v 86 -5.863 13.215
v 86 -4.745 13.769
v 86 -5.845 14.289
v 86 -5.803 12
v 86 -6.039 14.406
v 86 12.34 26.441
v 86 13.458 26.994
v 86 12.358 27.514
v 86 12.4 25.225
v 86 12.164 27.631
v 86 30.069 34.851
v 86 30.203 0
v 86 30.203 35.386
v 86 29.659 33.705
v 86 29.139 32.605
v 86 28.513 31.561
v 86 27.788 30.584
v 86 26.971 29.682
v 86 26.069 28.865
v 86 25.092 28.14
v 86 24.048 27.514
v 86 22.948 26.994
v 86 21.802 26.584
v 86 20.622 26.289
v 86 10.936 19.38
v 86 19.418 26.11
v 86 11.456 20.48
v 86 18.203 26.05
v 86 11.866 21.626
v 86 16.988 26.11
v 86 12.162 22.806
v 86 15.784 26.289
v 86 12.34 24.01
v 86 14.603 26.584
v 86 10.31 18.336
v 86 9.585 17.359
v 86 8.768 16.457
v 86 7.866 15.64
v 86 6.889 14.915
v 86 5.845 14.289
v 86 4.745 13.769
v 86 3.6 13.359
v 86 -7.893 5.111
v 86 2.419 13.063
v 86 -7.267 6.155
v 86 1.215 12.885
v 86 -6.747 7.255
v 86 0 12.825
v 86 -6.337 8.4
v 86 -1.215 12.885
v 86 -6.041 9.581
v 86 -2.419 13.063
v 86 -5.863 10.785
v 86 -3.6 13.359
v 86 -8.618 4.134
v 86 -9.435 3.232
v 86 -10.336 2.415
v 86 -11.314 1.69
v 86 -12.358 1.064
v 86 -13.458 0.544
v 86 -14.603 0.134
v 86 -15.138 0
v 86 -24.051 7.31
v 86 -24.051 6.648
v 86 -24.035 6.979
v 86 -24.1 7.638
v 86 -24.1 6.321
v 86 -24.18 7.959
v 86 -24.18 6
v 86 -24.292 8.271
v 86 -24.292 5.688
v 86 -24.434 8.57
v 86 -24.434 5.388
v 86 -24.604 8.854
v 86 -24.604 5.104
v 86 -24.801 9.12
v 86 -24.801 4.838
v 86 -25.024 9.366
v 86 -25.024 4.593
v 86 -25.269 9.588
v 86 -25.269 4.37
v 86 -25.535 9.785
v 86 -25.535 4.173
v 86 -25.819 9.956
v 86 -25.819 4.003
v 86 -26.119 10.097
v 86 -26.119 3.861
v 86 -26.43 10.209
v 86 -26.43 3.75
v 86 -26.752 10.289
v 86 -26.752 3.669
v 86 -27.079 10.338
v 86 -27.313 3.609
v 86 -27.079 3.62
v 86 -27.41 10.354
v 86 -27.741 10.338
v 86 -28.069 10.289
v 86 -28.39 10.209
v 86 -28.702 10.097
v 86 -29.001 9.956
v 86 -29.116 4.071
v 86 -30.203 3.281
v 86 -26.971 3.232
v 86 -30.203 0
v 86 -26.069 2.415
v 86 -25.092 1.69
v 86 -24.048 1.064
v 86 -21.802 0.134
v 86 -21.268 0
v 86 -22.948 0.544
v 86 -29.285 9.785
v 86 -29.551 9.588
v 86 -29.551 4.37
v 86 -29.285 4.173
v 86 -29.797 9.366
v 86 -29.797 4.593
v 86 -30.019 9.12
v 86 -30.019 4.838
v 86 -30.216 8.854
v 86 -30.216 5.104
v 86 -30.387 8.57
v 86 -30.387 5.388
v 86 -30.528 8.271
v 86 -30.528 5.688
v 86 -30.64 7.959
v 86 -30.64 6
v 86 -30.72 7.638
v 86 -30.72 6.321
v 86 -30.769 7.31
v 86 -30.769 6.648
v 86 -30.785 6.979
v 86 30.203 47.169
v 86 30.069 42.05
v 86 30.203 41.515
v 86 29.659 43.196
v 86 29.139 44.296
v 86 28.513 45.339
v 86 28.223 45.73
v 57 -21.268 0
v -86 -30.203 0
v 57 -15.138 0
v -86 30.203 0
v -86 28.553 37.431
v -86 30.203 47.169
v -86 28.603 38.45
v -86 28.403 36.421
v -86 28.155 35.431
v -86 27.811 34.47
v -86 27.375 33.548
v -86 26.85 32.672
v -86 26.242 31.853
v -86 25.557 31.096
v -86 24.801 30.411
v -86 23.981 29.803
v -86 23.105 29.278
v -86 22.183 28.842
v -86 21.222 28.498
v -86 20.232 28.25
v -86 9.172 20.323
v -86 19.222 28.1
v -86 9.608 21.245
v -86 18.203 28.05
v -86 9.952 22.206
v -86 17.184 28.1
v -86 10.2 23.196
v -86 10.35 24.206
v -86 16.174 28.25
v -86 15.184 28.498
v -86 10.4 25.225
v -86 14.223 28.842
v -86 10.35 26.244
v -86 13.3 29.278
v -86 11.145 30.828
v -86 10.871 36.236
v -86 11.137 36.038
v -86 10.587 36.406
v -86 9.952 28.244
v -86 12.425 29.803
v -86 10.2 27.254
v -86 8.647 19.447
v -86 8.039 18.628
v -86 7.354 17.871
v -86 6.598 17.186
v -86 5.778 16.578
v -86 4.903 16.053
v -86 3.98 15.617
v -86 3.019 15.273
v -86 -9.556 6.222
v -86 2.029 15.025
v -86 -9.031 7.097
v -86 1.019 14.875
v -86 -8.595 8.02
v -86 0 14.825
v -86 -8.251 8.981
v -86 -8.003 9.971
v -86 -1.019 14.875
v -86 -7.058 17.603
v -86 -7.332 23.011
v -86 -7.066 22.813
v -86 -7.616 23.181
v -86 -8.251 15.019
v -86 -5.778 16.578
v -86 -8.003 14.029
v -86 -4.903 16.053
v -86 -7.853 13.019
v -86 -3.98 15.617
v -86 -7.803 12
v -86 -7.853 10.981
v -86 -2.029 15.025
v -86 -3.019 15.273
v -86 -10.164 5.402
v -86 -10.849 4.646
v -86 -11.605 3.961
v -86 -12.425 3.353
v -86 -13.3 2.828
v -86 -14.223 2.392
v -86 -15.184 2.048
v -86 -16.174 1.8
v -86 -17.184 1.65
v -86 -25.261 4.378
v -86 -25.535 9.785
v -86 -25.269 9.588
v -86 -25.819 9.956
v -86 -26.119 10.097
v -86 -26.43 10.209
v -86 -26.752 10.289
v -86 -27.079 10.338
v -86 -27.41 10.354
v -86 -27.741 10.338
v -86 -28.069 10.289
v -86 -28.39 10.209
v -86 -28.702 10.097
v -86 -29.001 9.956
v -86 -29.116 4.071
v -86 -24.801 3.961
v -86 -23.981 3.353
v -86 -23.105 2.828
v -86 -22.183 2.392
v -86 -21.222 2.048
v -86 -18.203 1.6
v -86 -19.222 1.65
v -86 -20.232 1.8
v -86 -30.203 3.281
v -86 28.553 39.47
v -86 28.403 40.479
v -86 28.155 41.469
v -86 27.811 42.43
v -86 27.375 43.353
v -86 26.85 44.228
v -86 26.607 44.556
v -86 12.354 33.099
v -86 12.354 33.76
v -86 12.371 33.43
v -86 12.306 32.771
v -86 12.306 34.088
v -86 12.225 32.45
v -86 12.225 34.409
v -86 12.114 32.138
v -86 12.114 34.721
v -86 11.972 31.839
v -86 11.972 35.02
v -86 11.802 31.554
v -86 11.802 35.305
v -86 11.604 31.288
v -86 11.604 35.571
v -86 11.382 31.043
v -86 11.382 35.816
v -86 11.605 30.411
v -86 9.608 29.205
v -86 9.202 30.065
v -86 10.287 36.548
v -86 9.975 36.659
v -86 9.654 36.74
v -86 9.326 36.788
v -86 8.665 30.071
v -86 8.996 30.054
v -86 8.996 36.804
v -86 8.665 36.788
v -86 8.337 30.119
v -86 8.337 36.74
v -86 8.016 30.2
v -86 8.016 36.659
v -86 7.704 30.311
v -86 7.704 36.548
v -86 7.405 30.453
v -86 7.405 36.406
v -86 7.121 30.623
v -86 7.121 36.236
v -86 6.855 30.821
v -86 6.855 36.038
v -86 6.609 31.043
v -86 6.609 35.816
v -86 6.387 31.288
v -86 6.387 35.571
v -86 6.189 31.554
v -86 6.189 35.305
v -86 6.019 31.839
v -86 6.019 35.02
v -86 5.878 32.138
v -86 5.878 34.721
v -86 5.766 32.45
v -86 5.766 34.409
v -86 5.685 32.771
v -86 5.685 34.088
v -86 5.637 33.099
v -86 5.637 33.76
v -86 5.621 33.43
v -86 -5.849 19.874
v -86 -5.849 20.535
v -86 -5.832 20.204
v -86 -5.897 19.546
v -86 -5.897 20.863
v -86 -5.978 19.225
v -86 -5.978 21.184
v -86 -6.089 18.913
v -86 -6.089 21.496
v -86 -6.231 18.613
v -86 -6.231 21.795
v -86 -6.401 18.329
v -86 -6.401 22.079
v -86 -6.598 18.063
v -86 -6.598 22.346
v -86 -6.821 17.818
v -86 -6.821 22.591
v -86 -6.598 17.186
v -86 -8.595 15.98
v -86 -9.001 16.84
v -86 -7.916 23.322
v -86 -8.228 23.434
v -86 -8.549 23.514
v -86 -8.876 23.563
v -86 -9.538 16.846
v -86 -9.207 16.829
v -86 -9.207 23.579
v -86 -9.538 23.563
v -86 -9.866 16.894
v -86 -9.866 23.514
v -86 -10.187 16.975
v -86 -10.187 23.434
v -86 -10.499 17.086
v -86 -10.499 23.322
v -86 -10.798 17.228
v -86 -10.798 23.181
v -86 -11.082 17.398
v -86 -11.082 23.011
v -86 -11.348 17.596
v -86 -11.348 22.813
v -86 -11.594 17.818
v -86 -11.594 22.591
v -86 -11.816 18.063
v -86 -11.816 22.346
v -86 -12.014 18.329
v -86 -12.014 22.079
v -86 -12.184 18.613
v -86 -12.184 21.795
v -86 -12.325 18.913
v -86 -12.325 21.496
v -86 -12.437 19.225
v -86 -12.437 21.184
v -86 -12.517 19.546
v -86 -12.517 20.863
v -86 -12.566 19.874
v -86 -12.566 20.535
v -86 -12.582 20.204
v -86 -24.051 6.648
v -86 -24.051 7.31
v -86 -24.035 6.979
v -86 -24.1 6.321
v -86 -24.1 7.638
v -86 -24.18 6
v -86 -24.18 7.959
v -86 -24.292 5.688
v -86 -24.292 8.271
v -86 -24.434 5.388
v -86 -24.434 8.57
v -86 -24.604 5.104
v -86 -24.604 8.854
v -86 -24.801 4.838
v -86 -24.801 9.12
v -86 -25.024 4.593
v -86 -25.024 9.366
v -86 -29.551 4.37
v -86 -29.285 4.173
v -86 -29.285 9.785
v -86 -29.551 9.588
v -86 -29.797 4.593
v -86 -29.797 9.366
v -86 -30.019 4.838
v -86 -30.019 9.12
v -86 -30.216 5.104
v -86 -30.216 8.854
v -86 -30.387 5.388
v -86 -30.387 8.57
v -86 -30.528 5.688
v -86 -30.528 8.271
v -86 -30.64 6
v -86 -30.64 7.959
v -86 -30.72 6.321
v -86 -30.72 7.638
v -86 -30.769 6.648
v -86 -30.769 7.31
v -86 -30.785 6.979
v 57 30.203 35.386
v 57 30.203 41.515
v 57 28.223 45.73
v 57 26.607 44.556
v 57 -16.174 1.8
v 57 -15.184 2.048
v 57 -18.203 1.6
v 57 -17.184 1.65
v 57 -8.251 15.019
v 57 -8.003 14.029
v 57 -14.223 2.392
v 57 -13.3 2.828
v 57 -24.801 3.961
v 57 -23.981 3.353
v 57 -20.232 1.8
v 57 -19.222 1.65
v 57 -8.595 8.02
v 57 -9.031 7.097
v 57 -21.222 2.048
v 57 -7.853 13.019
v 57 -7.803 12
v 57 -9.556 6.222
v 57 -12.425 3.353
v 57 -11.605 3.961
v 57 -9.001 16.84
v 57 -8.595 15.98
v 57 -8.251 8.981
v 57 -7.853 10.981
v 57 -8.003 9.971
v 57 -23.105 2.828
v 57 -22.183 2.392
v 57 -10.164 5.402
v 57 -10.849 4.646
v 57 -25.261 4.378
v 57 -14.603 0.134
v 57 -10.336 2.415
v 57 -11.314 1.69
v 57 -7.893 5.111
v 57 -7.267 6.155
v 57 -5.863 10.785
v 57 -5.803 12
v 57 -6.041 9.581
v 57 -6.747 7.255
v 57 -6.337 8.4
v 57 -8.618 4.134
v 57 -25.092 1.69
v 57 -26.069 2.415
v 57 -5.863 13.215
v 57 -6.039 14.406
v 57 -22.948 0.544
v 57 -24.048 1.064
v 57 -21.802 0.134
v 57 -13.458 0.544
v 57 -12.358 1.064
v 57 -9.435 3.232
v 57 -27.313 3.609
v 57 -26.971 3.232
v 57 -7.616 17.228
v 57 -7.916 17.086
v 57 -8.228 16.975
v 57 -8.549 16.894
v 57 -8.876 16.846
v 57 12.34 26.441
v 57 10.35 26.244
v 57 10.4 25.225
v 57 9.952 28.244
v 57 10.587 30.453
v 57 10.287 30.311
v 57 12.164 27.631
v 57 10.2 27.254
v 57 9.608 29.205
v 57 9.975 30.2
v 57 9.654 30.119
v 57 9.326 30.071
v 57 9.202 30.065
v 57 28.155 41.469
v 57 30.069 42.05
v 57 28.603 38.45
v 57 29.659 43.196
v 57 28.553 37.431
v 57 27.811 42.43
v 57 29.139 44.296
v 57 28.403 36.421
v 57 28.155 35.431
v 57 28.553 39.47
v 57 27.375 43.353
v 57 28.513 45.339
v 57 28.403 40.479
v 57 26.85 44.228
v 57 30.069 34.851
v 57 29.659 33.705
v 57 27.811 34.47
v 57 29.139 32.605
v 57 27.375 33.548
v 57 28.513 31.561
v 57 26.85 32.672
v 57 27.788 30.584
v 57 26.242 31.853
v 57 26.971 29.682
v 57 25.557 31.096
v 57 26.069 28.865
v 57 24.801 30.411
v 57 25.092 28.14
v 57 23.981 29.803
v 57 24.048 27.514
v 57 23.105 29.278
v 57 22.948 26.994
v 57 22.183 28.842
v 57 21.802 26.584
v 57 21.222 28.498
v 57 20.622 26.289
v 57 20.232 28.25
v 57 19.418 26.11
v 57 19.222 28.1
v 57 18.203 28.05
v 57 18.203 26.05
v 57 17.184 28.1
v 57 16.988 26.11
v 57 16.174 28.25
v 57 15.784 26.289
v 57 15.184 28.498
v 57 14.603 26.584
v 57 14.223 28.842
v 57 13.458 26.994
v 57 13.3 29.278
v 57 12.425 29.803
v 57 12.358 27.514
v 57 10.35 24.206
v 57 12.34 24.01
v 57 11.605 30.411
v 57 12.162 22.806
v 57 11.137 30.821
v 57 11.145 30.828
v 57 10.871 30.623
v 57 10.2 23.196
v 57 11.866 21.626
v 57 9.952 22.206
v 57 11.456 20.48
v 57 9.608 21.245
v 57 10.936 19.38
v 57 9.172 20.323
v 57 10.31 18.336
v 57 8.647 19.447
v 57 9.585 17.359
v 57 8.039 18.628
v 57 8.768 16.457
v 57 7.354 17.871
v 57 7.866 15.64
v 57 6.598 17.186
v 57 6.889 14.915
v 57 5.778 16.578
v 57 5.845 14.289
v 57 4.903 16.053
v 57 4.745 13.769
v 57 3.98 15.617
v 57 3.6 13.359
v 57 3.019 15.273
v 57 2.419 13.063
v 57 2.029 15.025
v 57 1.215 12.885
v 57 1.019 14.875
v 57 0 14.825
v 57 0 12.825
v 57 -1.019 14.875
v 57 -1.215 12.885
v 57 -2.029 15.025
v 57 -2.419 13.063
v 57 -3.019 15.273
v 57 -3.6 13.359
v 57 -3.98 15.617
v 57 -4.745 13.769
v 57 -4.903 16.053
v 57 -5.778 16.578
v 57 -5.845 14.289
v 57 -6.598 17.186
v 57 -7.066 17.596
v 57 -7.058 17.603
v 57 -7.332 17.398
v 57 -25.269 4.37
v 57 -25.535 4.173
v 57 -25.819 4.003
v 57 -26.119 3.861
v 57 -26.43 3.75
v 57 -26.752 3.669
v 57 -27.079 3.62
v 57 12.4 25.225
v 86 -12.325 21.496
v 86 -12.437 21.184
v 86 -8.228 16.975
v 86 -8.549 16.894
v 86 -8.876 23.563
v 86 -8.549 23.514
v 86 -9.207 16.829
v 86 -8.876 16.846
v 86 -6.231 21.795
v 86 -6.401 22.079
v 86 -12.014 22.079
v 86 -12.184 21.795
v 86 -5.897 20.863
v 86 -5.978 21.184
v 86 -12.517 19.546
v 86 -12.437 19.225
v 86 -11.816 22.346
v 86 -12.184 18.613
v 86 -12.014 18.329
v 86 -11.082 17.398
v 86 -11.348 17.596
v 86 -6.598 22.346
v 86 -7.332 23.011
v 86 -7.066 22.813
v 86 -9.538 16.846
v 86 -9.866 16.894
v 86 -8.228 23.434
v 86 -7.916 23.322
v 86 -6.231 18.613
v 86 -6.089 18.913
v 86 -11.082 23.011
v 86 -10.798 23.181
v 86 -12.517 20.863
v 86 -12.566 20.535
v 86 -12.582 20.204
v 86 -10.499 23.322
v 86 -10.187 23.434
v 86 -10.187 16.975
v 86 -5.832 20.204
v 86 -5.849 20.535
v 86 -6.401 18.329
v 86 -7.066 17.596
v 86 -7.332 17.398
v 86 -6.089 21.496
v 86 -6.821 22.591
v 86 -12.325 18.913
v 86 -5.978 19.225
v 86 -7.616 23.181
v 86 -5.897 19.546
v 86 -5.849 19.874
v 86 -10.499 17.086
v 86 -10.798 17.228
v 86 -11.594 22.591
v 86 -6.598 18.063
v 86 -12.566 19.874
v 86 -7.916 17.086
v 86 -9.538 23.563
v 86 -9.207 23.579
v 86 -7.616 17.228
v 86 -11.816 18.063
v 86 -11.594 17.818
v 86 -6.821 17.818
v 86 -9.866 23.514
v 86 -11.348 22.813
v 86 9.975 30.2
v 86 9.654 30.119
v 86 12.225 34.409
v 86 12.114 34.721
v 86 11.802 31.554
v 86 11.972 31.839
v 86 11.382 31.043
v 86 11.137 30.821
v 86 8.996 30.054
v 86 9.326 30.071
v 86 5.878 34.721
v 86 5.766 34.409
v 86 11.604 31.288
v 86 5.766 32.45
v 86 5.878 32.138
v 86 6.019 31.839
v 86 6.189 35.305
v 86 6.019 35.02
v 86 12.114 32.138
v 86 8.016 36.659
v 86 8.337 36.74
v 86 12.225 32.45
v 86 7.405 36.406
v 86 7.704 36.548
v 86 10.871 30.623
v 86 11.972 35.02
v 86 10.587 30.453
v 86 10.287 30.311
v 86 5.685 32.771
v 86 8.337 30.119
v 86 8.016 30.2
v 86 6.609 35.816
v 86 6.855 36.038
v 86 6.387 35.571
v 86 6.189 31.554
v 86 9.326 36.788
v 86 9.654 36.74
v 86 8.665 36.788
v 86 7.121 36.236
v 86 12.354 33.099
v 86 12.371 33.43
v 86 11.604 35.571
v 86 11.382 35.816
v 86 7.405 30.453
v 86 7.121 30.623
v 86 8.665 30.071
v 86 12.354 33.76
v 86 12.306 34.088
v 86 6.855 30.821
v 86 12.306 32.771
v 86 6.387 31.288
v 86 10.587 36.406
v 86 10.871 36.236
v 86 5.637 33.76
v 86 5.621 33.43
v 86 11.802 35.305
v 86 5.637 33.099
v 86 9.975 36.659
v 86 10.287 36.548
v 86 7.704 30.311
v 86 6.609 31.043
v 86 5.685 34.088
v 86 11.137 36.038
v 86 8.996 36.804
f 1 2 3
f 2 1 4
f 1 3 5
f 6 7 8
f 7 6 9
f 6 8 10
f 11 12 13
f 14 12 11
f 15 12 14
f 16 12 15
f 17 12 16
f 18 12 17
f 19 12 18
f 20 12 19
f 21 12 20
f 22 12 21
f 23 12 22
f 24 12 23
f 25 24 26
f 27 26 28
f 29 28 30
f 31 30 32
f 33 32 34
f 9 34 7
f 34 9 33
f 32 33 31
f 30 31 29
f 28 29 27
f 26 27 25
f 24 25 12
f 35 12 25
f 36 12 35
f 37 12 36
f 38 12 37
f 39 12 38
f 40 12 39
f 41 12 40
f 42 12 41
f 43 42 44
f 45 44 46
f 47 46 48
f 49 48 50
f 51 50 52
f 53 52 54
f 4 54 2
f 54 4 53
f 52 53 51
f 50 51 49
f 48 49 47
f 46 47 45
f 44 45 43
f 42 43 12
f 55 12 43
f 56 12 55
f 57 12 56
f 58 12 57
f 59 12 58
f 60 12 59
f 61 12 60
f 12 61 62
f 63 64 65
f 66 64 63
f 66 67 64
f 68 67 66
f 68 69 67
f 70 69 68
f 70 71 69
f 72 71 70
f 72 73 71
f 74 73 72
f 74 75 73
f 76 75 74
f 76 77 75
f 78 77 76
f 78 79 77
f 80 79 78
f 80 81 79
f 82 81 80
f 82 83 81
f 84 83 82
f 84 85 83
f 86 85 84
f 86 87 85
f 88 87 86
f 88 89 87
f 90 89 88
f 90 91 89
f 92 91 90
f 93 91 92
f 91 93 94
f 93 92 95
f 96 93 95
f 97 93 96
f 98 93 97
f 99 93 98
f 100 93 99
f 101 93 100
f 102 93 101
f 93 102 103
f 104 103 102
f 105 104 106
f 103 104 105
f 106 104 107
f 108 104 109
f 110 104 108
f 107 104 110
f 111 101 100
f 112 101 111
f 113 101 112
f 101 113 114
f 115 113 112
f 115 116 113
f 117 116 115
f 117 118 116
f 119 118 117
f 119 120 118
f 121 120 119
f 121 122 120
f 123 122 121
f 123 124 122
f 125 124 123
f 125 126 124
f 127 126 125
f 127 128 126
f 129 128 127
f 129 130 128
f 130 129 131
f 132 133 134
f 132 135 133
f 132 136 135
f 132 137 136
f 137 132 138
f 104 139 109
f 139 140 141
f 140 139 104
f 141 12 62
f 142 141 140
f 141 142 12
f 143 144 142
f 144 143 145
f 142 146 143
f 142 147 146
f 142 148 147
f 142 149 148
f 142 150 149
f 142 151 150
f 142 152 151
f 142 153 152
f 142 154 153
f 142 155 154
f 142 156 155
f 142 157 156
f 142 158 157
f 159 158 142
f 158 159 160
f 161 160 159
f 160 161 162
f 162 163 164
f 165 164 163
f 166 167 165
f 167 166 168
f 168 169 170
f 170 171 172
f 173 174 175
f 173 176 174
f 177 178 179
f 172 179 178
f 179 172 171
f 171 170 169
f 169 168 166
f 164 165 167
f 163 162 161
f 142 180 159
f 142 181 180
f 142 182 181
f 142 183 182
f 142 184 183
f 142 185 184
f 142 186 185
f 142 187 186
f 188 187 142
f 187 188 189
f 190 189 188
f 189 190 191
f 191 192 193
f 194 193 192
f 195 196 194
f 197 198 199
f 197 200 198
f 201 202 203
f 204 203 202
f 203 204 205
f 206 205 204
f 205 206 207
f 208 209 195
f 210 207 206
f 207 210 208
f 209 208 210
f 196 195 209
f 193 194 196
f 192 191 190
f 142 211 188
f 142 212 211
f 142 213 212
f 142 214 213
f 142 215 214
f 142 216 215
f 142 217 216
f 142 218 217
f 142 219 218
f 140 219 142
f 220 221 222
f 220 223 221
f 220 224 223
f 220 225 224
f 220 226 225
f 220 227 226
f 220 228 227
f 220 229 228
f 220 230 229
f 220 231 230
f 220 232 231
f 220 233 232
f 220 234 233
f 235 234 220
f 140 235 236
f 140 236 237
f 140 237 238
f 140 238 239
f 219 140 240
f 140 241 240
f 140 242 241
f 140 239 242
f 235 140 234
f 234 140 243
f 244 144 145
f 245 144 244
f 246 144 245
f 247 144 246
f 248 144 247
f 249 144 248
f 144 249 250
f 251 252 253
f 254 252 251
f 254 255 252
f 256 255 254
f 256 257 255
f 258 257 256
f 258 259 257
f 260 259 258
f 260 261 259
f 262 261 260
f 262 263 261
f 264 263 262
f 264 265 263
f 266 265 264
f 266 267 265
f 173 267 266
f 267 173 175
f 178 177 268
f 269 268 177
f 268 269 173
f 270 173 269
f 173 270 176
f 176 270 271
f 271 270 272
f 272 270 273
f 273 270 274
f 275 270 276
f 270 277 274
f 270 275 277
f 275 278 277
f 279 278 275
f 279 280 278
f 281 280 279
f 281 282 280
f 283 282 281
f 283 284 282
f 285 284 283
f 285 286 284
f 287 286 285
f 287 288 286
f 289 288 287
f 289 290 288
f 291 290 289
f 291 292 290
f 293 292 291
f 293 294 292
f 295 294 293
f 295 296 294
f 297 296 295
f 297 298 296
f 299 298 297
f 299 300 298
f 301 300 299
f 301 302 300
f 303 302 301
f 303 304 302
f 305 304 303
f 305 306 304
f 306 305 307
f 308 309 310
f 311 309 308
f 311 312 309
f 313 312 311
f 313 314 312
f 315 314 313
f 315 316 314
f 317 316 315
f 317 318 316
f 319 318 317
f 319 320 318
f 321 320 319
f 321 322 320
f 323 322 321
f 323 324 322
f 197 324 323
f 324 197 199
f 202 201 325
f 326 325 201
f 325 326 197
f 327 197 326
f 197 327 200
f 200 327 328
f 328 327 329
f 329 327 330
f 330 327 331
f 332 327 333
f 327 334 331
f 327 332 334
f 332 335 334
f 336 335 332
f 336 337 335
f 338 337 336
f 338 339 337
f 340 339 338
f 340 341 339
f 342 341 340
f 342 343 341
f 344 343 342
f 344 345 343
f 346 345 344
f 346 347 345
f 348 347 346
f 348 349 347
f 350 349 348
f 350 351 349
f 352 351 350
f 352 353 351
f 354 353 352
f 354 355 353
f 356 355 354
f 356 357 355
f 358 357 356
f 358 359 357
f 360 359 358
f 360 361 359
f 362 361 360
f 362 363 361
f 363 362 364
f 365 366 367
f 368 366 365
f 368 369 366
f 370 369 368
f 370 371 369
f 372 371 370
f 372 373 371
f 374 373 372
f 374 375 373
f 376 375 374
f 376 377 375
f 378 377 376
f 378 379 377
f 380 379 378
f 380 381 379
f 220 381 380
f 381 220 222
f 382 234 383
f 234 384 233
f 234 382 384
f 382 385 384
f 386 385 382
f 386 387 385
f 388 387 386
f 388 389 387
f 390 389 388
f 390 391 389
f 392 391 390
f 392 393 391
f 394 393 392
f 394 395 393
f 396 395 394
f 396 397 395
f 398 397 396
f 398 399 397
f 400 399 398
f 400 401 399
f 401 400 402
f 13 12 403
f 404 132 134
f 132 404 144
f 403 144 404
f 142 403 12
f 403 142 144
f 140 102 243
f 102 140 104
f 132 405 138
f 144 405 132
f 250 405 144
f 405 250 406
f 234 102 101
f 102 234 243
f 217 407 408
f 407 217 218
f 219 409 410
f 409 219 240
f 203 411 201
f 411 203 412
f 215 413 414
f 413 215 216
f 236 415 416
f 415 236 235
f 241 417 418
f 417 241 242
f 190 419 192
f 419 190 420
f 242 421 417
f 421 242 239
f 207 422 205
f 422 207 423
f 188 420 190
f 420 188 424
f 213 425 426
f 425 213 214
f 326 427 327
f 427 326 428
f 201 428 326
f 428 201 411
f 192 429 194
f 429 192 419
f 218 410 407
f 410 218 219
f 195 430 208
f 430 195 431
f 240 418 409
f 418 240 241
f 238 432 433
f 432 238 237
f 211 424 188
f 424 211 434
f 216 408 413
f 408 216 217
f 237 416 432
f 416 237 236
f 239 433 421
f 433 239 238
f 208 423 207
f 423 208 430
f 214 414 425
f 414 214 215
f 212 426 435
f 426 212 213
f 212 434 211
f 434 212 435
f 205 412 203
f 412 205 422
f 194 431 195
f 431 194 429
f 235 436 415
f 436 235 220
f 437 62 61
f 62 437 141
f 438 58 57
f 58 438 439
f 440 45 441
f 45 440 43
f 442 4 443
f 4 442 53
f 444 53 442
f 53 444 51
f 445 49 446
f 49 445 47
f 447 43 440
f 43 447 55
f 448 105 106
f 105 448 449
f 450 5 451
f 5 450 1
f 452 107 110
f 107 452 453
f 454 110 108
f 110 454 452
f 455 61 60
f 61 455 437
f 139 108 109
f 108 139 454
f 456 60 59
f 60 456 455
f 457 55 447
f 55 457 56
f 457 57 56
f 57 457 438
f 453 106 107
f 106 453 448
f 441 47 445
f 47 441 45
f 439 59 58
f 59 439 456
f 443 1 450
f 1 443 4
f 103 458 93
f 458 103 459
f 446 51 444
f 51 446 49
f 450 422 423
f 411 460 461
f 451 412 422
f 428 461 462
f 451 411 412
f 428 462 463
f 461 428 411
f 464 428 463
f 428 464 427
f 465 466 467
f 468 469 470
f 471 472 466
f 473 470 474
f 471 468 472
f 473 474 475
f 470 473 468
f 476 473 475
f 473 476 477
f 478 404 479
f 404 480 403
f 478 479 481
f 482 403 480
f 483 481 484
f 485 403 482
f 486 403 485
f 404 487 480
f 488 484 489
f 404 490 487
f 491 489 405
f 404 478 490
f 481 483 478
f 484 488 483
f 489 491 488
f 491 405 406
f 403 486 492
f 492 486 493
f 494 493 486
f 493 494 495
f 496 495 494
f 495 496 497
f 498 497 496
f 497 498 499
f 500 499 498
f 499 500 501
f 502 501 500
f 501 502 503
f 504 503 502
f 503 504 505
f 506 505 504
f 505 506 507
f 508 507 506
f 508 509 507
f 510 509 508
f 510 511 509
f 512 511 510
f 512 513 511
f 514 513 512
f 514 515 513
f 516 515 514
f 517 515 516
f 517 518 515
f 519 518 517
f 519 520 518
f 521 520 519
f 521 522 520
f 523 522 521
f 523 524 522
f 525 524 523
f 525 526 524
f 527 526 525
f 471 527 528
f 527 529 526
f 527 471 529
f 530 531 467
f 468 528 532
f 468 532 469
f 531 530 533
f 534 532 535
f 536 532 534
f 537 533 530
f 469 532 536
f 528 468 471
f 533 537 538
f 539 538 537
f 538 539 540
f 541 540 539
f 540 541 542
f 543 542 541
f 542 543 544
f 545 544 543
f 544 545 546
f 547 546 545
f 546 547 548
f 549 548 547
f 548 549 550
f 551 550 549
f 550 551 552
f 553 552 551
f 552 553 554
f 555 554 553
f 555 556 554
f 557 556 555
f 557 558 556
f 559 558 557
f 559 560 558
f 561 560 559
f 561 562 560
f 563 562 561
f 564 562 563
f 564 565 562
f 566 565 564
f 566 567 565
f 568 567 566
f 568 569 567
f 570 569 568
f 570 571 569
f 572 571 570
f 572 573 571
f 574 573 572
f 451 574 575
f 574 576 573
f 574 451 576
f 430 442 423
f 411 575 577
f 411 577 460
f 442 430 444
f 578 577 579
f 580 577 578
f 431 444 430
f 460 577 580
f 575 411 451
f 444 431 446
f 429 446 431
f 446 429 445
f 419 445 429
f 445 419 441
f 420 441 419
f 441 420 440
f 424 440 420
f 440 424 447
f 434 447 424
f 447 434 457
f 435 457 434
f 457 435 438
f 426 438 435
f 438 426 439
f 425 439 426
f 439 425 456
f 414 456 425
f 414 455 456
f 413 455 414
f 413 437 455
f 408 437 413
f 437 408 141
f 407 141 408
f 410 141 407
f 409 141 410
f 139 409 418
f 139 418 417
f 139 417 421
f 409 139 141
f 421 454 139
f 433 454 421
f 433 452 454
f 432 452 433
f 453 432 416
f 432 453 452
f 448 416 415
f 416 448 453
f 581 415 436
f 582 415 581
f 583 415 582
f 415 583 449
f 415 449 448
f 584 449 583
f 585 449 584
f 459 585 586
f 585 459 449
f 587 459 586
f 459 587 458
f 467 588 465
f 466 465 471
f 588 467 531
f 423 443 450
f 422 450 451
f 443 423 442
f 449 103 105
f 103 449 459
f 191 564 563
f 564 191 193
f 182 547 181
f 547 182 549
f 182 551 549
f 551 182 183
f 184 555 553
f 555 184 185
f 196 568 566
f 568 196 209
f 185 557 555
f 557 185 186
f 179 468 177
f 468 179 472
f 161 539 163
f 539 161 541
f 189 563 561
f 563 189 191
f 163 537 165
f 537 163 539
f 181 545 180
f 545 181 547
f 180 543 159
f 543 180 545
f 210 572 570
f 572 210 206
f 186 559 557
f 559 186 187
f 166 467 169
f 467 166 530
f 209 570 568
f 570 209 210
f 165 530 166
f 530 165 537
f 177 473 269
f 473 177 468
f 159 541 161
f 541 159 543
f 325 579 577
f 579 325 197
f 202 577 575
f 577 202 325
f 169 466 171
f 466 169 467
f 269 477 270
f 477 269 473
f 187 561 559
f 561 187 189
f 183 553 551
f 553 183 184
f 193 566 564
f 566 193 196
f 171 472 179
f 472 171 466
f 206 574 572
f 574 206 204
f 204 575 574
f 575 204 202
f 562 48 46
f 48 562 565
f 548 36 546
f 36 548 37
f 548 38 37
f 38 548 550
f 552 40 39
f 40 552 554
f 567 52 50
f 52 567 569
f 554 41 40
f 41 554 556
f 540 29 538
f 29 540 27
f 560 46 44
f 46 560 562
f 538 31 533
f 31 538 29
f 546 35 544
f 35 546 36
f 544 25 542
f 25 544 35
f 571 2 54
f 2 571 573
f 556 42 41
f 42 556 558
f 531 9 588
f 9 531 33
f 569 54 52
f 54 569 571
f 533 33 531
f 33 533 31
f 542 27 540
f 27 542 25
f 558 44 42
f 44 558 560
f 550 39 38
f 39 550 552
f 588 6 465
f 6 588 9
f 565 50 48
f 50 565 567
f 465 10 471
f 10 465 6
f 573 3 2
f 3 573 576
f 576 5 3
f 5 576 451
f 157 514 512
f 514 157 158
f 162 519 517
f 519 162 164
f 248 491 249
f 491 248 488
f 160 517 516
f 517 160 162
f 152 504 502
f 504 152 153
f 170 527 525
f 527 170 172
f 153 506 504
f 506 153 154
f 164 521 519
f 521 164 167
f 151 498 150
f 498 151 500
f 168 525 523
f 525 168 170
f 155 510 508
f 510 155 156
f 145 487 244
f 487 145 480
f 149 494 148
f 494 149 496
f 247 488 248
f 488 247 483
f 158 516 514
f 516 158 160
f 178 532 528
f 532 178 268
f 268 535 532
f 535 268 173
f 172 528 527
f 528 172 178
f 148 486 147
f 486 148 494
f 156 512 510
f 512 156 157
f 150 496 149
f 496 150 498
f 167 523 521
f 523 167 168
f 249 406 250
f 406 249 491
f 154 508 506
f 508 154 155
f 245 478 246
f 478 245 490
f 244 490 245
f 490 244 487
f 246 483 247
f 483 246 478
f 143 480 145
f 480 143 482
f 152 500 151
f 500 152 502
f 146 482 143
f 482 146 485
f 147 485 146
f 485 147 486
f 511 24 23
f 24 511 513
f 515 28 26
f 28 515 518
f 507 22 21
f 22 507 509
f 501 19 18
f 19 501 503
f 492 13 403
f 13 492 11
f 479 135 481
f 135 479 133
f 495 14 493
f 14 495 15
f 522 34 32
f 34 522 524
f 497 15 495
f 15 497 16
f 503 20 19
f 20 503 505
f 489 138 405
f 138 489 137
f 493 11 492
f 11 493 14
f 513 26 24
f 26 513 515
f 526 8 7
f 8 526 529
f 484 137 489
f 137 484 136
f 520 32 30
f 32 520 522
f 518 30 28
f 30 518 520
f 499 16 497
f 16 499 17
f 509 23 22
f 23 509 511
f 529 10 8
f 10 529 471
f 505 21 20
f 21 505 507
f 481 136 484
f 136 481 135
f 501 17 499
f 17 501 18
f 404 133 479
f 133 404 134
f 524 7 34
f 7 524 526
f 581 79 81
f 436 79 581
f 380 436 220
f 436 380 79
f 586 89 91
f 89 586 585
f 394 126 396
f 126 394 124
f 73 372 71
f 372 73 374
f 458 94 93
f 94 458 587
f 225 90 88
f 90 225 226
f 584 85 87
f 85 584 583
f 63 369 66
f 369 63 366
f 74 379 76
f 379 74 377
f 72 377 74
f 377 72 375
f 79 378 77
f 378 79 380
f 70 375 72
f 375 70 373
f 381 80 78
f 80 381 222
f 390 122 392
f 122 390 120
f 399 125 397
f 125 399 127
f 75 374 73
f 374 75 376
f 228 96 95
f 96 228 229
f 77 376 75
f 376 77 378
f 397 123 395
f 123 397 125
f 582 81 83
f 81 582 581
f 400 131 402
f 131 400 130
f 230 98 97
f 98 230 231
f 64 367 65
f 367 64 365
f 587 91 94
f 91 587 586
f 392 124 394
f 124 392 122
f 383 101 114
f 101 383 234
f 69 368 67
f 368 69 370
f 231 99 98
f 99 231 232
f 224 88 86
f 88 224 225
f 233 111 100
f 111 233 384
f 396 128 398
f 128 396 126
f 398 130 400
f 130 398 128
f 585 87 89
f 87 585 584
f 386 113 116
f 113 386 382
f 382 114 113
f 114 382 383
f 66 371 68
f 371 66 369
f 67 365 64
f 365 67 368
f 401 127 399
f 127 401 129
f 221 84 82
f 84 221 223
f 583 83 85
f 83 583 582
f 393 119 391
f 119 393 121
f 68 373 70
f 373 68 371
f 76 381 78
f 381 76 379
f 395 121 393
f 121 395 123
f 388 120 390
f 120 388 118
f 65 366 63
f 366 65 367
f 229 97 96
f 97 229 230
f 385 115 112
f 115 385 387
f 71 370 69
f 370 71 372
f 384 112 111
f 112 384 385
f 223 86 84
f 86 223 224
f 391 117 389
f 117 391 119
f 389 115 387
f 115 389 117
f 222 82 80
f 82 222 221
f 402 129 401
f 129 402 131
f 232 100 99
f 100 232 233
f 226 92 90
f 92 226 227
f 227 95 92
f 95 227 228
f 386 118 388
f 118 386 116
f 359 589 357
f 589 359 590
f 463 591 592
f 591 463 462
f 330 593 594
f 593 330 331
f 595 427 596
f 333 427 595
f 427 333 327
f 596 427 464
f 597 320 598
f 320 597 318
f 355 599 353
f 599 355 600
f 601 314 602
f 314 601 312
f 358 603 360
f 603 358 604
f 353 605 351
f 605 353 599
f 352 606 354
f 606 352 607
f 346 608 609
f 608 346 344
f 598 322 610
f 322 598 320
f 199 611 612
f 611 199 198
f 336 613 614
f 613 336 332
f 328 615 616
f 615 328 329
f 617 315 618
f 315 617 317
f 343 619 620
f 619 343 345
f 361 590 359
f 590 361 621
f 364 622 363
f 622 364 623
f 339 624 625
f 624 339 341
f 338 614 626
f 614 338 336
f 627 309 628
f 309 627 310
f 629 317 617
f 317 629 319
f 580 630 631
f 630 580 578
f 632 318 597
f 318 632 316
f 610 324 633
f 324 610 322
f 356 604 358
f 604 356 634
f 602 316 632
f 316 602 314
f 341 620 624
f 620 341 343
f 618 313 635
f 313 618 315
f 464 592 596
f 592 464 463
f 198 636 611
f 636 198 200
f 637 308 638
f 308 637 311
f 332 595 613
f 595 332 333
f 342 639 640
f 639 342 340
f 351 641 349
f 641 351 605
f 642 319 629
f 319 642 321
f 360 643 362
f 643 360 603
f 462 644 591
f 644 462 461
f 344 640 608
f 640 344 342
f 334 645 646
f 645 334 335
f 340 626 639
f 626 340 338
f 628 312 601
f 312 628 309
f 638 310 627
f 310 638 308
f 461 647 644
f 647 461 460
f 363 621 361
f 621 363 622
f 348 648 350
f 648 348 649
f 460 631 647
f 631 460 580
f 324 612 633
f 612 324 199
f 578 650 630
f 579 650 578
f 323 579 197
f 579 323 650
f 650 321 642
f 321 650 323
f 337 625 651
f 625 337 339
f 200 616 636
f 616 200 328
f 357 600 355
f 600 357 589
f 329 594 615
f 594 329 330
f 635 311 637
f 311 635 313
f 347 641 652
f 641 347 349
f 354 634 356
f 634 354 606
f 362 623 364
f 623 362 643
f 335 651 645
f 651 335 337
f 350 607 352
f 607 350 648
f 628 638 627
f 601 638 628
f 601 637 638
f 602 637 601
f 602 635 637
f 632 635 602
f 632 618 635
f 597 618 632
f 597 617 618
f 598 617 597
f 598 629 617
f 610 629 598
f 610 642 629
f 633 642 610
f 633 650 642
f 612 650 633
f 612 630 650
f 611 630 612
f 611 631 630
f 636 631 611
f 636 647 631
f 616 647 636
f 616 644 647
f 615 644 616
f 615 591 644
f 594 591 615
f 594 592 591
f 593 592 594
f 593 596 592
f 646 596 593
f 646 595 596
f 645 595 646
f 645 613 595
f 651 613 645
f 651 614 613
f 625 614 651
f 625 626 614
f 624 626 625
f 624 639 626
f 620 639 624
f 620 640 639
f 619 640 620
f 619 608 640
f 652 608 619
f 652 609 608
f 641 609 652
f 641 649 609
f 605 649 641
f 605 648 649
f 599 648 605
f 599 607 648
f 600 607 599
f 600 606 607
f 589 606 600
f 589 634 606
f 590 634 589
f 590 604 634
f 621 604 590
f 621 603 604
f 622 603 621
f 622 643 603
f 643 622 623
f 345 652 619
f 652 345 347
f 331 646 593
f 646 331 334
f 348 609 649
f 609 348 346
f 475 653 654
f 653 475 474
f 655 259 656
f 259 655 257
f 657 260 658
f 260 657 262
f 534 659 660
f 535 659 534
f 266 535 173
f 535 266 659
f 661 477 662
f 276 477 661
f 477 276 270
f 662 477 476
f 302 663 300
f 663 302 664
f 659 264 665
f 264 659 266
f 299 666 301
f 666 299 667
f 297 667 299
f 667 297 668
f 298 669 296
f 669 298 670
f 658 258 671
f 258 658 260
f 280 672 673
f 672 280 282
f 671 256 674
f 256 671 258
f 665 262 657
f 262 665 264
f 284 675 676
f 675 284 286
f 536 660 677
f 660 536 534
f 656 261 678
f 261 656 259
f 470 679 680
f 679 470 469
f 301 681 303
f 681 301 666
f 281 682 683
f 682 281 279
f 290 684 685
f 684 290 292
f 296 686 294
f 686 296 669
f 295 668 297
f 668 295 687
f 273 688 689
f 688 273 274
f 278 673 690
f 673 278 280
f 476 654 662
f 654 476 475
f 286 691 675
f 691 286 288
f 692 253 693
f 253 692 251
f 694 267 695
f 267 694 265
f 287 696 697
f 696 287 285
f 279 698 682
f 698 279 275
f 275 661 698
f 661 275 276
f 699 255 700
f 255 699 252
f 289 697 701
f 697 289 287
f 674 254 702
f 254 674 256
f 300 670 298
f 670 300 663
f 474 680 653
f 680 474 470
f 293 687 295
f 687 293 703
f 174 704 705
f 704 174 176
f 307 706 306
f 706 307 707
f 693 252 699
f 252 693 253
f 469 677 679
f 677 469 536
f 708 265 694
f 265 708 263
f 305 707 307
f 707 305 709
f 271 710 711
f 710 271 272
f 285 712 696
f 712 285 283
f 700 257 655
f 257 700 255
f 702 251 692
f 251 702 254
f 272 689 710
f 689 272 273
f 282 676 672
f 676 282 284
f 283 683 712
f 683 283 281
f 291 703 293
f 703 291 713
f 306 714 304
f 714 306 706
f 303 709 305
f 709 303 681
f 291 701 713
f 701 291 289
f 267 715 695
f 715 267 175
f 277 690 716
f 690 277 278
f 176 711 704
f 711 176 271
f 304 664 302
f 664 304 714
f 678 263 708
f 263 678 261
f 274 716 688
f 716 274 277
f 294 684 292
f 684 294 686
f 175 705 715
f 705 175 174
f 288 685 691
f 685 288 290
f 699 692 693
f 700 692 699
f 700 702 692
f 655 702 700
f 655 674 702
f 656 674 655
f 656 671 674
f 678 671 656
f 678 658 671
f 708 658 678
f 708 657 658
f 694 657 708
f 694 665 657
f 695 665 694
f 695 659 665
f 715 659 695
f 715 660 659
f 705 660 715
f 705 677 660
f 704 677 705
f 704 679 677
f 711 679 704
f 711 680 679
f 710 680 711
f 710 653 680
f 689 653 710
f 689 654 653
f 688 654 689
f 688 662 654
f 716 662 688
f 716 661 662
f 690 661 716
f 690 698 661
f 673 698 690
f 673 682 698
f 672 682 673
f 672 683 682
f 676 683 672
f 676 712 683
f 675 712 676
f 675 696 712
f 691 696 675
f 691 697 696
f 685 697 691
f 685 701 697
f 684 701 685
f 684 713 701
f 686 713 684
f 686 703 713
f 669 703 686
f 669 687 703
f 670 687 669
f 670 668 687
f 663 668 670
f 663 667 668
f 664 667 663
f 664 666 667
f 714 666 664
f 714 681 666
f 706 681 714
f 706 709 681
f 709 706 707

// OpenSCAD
// file: common.scad
// ============================================================
// common.scad — shared parameters + modules for all designs
// LOCKED PEN SPECIFICATION (do not change)
// ============================================================
PEN_L = 165;      // pen length (mm)
PEN_A = 17;       // pen cross-section minor
PEN_B = 20;       // pen cross-section major (used as diameter envelope)
CLEAR = 0.4;      // fit clearance
WALL  = 1.6;      // minimum wall thickness

$fn = 64;

RCH = PEN_B/2 + CLEAR;   // = 10.4  channel radius
EPS = 0.01;

// --- open-top U trough cut, axis along X, centered at local origin -----------
// Removes a lower half-cylinder of radius r plus a full-width vertical slot
// upward, so the channel is open at the top (no ceiling -> no overhang).
module trough_cut(len, r=RCH, top=80) {
    union() {
        rotate([0,90,0]) cylinder(h=len, r=r, center=true);
        translate([0,0,top/2]) cube([len, 2*r, top], center=true); // slot upward
    }
}

// --- teardrop hole, axis along X, centered at local origin --------------------
// 45-degree self-supporting apex pointing +Z so a horizontal bore can print
// without support.
module teardrop_cut(len, r=RCH) {
    rotate([0,90,0])
        linear_extrude(height=len, center=true)
            union() {
                circle(r=r);
                polygon([[ 0.7071*r, 0.7071*r],
                         [ 0,         1.4142*r],
                         [-0.7071*r,  0.7071*r]]);
            }
}

// --- dial relief: widened open-top pocket at one channel end -----------------
// place at the +X or -X end of a channel so the dose dial clears / can be turned
module dial_relief(end_x, r=RCH+2.2, len=28, top=80) {
    translate([end_x, 0, 0]) trough_cut(len, r, top);
}
// file: lipcradle_lib.scad
// lipcradle_lib.scad — SINGLE-PART reclined rack with a little front lip per
// cradle (no cover). Pens nestle into half-pipe cradles and lift out the front
// over a small rounded lip. The lip is a proud bump (not an undercut), so you
// lift the pen over it — no snap, no flex, nothing tolerance-critical.
include <common.scad>

LBLK = PEN_L + 7;   // 172

// n     : pens
// phi   : ramp angle (shallower holds better with a small lip; steeper fits more)
// P     : along-ramp spacing
// liph  : how far the front lip stands proud of the ramp (the "little lip")
// rr    : dial-relief radius
module lipcradle(n=3, phi=30, P=22.5, liph=4, rr=RCH+2, rlen=34) {
    cph=cos(phi); sph=sin(phi);
    yc=[for(i=[0:n-1]) (-(n-1)/2+i)*P*cph];
    zc=[for(i=[0:n-1]) (WALL+RCH)+i*P*sph];
    ymn=min(yc)-RCH-WALL; ymx=max(yc)+RCH+WALL;
    Wb=ymx-ymn; ycen=(ymx+ymn)/2; Hb=max(zc)+RCH+8;
    big=800; relief_cx=LBLK/2-12;
    nrY=-sph; nrZ=cph;          // ramp normal (up-front)
    tY=cph;   tZ=sph;           // up-slope tangent

    union() {
        difference() {
            // sheared wedge (ramp passes through the cradle centers)
            difference() {
                translate([0,ycen,Hb/2]) cube([LBLK,Wb,Hb],center=true);
                translate([0,yc[0],zc[0]]) rotate([phi,0,0])
                    translate([0,0,big/2]) cube([LBLK+2,big,big],center=true);
            }
            // half-pipe cradles (open up-front) + dial relief
            for(i=[0:n-1]) {
                translate([0,yc[i],zc[i]]) rotate([0,90,0])
                    cylinder(h=LBLK+2, r=RCH, center=true);
                translate([relief_cx,yc[i],zc[i]]) rotate([0,90,0])
                    cylinder(h=rlen, r=rr, center=true);
            }
        }
        // little rounded front lip along each cradle's down-slope rim (added
        // after the cut so it stands proud and gently narrows the opening)
        for(i=[0:n-1]) {
            rimY = yc[i] - RCH*tY;   rimZ = zc[i] - RCH*tZ;
            translate([0, rimY + 0.3*liph*nrY, rimZ + 0.3*liph*nrZ])
                rotate([0,90,0]) cylinder(h=LBLK, r=liph*0.75, center=true);
        }
    }
}
// main file
// lip-cradle, 3 pens, shallow 30deg — the little front lip genuinely holds.
include <lipcradle_lib.scad>
lipcradle(n=3, phi=36, P=22.5, liph=4.5);
